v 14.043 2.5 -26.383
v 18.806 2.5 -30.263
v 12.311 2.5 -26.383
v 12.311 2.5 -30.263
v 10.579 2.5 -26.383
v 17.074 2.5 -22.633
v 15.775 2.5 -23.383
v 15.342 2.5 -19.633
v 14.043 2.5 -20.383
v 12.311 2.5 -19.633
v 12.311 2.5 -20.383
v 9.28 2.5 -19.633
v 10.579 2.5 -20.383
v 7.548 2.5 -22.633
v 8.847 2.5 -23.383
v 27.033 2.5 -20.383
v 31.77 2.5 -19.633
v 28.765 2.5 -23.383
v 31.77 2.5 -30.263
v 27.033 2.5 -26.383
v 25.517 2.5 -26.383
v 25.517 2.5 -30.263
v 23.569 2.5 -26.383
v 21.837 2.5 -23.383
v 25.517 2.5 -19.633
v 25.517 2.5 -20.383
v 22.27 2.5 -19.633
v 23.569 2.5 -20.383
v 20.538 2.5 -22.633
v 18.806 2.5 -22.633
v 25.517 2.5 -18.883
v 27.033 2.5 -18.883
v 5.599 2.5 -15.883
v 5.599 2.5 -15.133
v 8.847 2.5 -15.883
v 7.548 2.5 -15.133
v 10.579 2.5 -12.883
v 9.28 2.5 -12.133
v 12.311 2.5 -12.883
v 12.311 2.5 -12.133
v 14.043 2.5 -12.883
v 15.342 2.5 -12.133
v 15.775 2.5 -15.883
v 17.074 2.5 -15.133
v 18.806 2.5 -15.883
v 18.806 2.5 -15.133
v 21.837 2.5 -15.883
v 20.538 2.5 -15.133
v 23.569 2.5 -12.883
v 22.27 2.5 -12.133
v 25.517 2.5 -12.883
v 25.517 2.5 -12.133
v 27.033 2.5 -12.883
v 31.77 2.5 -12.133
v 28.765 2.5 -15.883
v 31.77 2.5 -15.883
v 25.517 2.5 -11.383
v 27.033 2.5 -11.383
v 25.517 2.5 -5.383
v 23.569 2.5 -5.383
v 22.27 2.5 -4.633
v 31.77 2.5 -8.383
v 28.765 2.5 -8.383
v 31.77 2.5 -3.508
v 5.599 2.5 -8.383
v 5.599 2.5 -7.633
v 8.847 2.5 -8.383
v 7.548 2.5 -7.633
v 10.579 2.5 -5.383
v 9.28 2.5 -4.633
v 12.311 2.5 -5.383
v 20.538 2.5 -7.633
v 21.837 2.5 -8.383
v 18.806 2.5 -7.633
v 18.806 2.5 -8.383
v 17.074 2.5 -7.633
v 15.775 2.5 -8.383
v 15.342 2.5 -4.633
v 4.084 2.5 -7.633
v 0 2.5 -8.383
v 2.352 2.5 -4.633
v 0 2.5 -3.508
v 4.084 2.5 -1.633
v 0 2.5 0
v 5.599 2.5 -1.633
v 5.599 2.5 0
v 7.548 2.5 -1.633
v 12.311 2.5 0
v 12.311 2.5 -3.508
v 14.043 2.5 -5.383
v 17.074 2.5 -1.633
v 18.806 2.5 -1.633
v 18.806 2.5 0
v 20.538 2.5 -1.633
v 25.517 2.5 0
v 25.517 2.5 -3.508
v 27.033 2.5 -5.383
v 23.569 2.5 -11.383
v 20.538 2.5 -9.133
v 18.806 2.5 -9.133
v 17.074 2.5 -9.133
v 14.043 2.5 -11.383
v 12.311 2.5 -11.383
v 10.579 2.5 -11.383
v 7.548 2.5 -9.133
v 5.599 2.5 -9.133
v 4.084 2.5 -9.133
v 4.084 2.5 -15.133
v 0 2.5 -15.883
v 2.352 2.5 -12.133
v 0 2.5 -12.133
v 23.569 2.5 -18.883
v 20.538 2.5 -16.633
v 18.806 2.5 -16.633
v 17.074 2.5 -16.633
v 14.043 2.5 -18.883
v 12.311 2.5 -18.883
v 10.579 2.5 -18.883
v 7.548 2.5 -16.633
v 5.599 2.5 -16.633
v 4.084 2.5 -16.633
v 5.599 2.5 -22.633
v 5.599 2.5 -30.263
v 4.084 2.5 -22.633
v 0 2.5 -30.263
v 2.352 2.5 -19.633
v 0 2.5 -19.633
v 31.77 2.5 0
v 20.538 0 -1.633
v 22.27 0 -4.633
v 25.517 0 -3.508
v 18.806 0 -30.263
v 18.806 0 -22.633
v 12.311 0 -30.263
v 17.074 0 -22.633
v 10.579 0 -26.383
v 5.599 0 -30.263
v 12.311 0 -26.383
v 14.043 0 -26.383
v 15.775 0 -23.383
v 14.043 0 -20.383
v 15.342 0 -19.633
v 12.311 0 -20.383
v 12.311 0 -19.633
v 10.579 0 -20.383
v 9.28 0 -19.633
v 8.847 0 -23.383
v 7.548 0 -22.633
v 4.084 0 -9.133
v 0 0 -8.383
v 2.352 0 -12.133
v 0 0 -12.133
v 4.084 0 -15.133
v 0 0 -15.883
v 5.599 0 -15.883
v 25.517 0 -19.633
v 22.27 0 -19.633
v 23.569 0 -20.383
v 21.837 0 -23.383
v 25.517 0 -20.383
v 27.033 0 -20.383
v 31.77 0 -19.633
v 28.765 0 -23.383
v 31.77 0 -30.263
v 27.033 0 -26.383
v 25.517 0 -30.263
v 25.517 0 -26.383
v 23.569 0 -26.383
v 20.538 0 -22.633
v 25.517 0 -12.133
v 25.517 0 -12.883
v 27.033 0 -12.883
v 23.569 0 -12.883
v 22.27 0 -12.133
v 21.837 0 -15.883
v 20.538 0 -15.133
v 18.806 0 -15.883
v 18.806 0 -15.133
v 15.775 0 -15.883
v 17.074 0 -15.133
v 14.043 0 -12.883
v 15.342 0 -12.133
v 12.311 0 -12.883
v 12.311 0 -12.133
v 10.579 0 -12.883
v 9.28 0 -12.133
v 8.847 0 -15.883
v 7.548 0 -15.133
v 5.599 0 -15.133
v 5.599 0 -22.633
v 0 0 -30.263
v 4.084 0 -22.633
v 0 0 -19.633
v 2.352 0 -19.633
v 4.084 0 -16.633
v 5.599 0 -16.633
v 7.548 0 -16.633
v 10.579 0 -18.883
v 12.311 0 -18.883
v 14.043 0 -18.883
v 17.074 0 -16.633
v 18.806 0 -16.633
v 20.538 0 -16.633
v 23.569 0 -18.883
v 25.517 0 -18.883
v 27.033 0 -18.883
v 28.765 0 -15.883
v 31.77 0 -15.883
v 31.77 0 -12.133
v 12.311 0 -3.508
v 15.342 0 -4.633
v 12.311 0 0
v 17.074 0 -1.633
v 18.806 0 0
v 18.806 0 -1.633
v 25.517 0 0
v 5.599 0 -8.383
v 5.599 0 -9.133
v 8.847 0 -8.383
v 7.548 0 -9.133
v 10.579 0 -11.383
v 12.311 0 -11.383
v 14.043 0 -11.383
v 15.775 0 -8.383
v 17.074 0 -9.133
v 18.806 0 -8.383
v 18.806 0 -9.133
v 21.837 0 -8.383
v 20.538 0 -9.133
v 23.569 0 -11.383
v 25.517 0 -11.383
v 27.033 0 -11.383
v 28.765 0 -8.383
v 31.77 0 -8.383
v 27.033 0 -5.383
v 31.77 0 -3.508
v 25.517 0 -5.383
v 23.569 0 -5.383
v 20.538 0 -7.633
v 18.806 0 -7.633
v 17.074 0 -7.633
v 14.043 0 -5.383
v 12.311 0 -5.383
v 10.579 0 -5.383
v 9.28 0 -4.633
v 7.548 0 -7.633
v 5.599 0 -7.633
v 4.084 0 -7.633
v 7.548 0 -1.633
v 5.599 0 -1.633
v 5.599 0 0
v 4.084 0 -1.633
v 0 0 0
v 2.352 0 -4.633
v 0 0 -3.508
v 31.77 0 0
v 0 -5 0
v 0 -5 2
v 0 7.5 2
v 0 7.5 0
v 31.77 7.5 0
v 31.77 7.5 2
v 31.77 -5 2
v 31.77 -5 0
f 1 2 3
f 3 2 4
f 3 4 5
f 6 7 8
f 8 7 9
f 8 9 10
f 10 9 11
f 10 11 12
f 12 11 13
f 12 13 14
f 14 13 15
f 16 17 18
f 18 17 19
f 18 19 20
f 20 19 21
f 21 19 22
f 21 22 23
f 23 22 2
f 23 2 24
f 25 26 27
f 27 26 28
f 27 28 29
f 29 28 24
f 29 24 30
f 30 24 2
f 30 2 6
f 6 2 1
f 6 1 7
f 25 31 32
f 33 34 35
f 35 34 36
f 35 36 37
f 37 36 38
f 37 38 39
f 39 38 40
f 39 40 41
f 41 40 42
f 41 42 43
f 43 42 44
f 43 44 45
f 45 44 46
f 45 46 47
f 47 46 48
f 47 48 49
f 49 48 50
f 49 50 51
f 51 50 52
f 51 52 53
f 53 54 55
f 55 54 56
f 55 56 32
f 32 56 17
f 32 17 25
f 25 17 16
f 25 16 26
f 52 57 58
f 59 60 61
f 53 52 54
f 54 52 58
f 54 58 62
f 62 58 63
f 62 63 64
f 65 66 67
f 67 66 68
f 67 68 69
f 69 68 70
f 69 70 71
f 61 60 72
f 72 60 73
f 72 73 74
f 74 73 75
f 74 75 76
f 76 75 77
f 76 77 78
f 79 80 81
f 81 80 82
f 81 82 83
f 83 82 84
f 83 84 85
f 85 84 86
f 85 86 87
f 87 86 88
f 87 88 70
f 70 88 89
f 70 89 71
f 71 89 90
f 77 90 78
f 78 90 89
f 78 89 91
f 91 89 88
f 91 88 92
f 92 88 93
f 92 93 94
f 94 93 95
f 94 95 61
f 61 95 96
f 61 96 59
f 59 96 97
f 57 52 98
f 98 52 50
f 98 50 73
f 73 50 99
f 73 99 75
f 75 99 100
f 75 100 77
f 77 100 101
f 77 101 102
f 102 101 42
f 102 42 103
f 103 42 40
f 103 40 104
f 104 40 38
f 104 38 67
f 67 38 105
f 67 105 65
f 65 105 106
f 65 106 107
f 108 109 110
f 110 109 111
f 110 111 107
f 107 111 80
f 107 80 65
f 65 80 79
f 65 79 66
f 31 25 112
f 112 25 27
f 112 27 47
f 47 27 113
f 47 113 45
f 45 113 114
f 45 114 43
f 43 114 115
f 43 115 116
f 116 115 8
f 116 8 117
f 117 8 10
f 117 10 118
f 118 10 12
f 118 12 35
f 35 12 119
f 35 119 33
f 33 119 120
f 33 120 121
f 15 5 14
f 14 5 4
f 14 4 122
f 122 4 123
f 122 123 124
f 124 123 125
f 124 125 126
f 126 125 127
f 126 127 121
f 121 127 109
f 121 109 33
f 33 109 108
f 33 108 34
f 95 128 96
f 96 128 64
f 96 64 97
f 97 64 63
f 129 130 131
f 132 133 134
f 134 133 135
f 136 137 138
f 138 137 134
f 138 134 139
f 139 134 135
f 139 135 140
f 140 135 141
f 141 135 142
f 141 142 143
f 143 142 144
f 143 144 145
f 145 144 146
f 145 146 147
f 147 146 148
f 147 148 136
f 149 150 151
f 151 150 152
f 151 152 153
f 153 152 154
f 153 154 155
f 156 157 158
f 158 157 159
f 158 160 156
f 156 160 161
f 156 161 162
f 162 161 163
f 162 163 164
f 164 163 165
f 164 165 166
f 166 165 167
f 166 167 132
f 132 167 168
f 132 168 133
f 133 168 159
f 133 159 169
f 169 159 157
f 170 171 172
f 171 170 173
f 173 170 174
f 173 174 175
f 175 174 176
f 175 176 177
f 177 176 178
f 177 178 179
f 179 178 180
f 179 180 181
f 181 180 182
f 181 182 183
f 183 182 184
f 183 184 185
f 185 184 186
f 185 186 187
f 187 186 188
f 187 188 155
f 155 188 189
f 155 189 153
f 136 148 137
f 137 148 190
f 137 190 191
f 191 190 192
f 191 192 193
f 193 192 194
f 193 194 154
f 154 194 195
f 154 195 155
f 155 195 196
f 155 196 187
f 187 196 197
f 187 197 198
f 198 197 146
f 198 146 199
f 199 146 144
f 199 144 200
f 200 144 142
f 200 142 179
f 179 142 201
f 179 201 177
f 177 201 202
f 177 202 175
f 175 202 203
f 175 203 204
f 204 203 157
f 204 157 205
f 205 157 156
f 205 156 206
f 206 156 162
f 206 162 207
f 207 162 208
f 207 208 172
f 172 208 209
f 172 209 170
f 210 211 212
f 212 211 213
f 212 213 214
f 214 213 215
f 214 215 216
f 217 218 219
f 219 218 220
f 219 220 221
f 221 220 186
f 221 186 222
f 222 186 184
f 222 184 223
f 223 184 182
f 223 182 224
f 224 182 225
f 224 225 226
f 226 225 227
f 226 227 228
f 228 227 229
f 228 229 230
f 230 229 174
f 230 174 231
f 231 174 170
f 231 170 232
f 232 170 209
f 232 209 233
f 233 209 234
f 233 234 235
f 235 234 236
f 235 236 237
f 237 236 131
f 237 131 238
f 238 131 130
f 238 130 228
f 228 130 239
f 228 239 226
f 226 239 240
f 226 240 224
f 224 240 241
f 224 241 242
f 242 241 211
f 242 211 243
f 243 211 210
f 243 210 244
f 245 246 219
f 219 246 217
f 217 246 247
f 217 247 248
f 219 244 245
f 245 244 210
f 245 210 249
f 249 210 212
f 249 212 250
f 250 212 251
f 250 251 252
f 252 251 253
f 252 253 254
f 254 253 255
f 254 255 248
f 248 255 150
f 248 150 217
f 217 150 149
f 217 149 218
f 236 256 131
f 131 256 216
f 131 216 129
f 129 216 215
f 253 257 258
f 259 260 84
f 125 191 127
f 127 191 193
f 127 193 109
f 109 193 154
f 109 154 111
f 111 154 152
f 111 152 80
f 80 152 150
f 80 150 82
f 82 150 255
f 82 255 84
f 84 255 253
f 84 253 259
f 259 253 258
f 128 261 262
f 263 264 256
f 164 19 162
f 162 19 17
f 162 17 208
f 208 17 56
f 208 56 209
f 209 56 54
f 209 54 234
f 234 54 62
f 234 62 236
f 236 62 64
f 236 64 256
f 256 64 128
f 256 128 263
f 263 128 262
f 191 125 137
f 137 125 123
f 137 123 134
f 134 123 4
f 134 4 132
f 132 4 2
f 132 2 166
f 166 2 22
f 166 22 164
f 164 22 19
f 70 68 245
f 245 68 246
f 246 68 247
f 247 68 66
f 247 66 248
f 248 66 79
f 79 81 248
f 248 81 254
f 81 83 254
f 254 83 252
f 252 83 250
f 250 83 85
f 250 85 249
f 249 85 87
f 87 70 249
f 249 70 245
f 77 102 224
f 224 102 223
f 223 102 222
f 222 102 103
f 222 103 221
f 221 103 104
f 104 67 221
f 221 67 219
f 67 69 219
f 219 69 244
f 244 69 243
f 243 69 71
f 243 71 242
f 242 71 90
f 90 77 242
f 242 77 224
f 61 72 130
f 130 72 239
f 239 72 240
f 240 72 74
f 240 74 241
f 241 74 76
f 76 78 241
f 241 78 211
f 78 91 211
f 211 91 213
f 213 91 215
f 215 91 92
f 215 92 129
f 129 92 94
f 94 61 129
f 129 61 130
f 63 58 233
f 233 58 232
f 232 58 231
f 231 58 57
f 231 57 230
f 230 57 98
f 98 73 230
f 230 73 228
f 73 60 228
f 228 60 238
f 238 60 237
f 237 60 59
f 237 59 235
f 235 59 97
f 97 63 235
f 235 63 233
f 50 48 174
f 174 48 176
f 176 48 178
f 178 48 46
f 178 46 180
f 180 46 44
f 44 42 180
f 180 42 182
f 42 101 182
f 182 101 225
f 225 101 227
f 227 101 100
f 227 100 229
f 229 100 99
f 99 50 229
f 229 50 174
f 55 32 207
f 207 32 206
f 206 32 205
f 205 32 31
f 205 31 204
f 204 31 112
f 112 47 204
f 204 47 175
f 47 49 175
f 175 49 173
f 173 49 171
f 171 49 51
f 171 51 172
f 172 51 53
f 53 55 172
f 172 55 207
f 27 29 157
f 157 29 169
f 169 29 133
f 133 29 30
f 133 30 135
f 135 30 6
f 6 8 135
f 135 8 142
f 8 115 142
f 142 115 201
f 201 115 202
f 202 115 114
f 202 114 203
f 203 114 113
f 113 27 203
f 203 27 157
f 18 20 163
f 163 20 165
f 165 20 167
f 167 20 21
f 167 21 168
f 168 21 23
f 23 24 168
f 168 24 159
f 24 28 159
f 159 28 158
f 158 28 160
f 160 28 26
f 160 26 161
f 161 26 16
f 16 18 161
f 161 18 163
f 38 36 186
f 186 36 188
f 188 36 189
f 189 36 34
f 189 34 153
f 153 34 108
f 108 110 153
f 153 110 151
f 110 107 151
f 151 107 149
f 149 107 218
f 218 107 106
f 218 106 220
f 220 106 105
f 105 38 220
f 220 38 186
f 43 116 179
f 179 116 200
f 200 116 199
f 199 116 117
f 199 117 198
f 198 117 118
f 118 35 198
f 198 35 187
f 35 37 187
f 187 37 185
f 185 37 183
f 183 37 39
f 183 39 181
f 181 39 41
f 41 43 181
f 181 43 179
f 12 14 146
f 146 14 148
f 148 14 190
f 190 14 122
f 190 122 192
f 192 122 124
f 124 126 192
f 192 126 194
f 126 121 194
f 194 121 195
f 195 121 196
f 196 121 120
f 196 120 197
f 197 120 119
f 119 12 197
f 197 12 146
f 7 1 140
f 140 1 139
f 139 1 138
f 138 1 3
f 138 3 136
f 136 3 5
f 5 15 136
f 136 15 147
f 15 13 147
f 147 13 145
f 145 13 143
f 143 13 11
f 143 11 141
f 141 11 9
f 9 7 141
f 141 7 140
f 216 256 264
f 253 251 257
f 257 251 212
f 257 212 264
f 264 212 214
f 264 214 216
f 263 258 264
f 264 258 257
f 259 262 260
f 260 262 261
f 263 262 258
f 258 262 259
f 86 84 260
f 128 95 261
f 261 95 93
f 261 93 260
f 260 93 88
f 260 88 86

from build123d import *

# Parameters (mm, degrees)
SKETCH1_W           = 31.770430493
SKETCH1_H           = 30.262813536
BOSS_EXTRUDE1_DEPTH = 2.5
SKETCH2_W           = 31.770430493
SKETCH2_H           = 12.5
BOSS_EXTRUDE2_DEPTH = 2


with BuildPart() as part:
    # Sketch1 → Boss-Extrude1 (new body)
    with BuildSketch(Plane(origin=(0, 0, 0), x_dir=(1, 0, 0), z_dir=(0, 1, 0))):
        with Locations((15.885215247, 15.131406768)):
            Rectangle(SKETCH1_W, SKETCH1_H)
        Polygon((7.547843414, 7.63328856), (4.083741799, 7.63328856), (2.351690991, 4.63328856), (4.083741799, 1.63328856), (7.547843414, 1.63328856), (9.279894221, 4.63328856), align=None, mode=Mode.SUBTRACT)
        Polygon((14.043033942, 11.38328856), (10.578932327, 11.38328856), (8.846881519, 8.38328856), (10.578932327, 5.38328856), (14.043033942, 5.38328856), (15.77508475, 8.38328856), align=None, mode=Mode.SUBTRACT)
        Polygon((20.537843414, 7.63328856), (17.073741799, 7.63328856), (15.341690991, 4.63328856), (17.073741799, 1.63328856), (20.537843414, 1.63328856), (22.269894221, 4.63328856), align=None, mode=Mode.SUBTRACT)
        Polygon((27.033033942, 11.38328856), (23.568932327, 11.38328856), (21.836881519, 8.38328856), (23.568932327, 5.38328856), (27.033033942, 5.38328856), (28.76508475, 8.38328856), align=None, mode=Mode.SUBTRACT)
        Polygon((20.537843414, 15.13328856), (17.073741799, 15.13328856), (15.341690991, 12.13328856), (17.073741799, 9.13328856), (20.537843414, 9.13328856), (22.269894221, 12.13328856), align=None, mode=Mode.SUBTRACT)
        Polygon((27.033033942, 18.88328856), (23.568932327, 18.88328856), (21.836881519, 15.88328856), (23.568932327, 12.88328856), (27.033033942, 12.88328856), (28.76508475, 15.88328856), align=None, mode=Mode.SUBTRACT)
        Polygon((20.537843414, 22.63328856), (17.073741799, 22.63328856), (15.341690991, 19.63328856), (17.073741799, 16.63328856), (20.537843414, 16.63328856), (22.269894221, 19.63328856), align=None, mode=Mode.SUBTRACT)
        Polygon((27.033033942, 26.38328856), (23.568932327, 26.38328856), (21.836881519, 23.38328856), (23.568932327, 20.38328856), (27.033033942, 20.38328856), (28.76508475, 23.38328856), align=None, mode=Mode.SUBTRACT)
        Polygon((7.547843414, 15.13328856), (4.083741799, 15.13328856), (2.351690991, 12.13328856), (4.083741799, 9.13328856), (7.547843414, 9.13328856), (9.279894221, 12.13328856), align=None, mode=Mode.SUBTRACT)
        Polygon((14.043033942, 18.88328856), (10.578932327, 18.88328856), (8.846881519, 15.88328856), (10.578932327, 12.88328856), (14.043033942, 12.88328856), (15.77508475, 15.88328856), align=None, mode=Mode.SUBTRACT)
        Polygon((7.547843414, 22.63328856), (4.083741799, 22.63328856), (2.351690991, 19.63328856), (4.083741799, 16.63328856), (7.547843414, 16.63328856), (9.279894221, 19.63328856), align=None, mode=Mode.SUBTRACT)
        Polygon((14.043033942, 26.38328856), (10.578932327, 26.38328856), (8.846881519, 23.38328856), (10.578932327, 20.38328856), (14.043033942, 20.38328856), (15.77508475, 23.38328856), align=None, mode=Mode.SUBTRACT)
    extrude(amount=BOSS_EXTRUDE1_DEPTH)

    # Sketch2 → Boss-Extrude2 (add)
    with BuildSketch(Plane.XY):
        with Locations((15.885215247, 1.25)):
            Rectangle(SKETCH2_W, SKETCH2_H)
    extrude(amount=BOSS_EXTRUDE2_DEPTH)


solid = part.part
